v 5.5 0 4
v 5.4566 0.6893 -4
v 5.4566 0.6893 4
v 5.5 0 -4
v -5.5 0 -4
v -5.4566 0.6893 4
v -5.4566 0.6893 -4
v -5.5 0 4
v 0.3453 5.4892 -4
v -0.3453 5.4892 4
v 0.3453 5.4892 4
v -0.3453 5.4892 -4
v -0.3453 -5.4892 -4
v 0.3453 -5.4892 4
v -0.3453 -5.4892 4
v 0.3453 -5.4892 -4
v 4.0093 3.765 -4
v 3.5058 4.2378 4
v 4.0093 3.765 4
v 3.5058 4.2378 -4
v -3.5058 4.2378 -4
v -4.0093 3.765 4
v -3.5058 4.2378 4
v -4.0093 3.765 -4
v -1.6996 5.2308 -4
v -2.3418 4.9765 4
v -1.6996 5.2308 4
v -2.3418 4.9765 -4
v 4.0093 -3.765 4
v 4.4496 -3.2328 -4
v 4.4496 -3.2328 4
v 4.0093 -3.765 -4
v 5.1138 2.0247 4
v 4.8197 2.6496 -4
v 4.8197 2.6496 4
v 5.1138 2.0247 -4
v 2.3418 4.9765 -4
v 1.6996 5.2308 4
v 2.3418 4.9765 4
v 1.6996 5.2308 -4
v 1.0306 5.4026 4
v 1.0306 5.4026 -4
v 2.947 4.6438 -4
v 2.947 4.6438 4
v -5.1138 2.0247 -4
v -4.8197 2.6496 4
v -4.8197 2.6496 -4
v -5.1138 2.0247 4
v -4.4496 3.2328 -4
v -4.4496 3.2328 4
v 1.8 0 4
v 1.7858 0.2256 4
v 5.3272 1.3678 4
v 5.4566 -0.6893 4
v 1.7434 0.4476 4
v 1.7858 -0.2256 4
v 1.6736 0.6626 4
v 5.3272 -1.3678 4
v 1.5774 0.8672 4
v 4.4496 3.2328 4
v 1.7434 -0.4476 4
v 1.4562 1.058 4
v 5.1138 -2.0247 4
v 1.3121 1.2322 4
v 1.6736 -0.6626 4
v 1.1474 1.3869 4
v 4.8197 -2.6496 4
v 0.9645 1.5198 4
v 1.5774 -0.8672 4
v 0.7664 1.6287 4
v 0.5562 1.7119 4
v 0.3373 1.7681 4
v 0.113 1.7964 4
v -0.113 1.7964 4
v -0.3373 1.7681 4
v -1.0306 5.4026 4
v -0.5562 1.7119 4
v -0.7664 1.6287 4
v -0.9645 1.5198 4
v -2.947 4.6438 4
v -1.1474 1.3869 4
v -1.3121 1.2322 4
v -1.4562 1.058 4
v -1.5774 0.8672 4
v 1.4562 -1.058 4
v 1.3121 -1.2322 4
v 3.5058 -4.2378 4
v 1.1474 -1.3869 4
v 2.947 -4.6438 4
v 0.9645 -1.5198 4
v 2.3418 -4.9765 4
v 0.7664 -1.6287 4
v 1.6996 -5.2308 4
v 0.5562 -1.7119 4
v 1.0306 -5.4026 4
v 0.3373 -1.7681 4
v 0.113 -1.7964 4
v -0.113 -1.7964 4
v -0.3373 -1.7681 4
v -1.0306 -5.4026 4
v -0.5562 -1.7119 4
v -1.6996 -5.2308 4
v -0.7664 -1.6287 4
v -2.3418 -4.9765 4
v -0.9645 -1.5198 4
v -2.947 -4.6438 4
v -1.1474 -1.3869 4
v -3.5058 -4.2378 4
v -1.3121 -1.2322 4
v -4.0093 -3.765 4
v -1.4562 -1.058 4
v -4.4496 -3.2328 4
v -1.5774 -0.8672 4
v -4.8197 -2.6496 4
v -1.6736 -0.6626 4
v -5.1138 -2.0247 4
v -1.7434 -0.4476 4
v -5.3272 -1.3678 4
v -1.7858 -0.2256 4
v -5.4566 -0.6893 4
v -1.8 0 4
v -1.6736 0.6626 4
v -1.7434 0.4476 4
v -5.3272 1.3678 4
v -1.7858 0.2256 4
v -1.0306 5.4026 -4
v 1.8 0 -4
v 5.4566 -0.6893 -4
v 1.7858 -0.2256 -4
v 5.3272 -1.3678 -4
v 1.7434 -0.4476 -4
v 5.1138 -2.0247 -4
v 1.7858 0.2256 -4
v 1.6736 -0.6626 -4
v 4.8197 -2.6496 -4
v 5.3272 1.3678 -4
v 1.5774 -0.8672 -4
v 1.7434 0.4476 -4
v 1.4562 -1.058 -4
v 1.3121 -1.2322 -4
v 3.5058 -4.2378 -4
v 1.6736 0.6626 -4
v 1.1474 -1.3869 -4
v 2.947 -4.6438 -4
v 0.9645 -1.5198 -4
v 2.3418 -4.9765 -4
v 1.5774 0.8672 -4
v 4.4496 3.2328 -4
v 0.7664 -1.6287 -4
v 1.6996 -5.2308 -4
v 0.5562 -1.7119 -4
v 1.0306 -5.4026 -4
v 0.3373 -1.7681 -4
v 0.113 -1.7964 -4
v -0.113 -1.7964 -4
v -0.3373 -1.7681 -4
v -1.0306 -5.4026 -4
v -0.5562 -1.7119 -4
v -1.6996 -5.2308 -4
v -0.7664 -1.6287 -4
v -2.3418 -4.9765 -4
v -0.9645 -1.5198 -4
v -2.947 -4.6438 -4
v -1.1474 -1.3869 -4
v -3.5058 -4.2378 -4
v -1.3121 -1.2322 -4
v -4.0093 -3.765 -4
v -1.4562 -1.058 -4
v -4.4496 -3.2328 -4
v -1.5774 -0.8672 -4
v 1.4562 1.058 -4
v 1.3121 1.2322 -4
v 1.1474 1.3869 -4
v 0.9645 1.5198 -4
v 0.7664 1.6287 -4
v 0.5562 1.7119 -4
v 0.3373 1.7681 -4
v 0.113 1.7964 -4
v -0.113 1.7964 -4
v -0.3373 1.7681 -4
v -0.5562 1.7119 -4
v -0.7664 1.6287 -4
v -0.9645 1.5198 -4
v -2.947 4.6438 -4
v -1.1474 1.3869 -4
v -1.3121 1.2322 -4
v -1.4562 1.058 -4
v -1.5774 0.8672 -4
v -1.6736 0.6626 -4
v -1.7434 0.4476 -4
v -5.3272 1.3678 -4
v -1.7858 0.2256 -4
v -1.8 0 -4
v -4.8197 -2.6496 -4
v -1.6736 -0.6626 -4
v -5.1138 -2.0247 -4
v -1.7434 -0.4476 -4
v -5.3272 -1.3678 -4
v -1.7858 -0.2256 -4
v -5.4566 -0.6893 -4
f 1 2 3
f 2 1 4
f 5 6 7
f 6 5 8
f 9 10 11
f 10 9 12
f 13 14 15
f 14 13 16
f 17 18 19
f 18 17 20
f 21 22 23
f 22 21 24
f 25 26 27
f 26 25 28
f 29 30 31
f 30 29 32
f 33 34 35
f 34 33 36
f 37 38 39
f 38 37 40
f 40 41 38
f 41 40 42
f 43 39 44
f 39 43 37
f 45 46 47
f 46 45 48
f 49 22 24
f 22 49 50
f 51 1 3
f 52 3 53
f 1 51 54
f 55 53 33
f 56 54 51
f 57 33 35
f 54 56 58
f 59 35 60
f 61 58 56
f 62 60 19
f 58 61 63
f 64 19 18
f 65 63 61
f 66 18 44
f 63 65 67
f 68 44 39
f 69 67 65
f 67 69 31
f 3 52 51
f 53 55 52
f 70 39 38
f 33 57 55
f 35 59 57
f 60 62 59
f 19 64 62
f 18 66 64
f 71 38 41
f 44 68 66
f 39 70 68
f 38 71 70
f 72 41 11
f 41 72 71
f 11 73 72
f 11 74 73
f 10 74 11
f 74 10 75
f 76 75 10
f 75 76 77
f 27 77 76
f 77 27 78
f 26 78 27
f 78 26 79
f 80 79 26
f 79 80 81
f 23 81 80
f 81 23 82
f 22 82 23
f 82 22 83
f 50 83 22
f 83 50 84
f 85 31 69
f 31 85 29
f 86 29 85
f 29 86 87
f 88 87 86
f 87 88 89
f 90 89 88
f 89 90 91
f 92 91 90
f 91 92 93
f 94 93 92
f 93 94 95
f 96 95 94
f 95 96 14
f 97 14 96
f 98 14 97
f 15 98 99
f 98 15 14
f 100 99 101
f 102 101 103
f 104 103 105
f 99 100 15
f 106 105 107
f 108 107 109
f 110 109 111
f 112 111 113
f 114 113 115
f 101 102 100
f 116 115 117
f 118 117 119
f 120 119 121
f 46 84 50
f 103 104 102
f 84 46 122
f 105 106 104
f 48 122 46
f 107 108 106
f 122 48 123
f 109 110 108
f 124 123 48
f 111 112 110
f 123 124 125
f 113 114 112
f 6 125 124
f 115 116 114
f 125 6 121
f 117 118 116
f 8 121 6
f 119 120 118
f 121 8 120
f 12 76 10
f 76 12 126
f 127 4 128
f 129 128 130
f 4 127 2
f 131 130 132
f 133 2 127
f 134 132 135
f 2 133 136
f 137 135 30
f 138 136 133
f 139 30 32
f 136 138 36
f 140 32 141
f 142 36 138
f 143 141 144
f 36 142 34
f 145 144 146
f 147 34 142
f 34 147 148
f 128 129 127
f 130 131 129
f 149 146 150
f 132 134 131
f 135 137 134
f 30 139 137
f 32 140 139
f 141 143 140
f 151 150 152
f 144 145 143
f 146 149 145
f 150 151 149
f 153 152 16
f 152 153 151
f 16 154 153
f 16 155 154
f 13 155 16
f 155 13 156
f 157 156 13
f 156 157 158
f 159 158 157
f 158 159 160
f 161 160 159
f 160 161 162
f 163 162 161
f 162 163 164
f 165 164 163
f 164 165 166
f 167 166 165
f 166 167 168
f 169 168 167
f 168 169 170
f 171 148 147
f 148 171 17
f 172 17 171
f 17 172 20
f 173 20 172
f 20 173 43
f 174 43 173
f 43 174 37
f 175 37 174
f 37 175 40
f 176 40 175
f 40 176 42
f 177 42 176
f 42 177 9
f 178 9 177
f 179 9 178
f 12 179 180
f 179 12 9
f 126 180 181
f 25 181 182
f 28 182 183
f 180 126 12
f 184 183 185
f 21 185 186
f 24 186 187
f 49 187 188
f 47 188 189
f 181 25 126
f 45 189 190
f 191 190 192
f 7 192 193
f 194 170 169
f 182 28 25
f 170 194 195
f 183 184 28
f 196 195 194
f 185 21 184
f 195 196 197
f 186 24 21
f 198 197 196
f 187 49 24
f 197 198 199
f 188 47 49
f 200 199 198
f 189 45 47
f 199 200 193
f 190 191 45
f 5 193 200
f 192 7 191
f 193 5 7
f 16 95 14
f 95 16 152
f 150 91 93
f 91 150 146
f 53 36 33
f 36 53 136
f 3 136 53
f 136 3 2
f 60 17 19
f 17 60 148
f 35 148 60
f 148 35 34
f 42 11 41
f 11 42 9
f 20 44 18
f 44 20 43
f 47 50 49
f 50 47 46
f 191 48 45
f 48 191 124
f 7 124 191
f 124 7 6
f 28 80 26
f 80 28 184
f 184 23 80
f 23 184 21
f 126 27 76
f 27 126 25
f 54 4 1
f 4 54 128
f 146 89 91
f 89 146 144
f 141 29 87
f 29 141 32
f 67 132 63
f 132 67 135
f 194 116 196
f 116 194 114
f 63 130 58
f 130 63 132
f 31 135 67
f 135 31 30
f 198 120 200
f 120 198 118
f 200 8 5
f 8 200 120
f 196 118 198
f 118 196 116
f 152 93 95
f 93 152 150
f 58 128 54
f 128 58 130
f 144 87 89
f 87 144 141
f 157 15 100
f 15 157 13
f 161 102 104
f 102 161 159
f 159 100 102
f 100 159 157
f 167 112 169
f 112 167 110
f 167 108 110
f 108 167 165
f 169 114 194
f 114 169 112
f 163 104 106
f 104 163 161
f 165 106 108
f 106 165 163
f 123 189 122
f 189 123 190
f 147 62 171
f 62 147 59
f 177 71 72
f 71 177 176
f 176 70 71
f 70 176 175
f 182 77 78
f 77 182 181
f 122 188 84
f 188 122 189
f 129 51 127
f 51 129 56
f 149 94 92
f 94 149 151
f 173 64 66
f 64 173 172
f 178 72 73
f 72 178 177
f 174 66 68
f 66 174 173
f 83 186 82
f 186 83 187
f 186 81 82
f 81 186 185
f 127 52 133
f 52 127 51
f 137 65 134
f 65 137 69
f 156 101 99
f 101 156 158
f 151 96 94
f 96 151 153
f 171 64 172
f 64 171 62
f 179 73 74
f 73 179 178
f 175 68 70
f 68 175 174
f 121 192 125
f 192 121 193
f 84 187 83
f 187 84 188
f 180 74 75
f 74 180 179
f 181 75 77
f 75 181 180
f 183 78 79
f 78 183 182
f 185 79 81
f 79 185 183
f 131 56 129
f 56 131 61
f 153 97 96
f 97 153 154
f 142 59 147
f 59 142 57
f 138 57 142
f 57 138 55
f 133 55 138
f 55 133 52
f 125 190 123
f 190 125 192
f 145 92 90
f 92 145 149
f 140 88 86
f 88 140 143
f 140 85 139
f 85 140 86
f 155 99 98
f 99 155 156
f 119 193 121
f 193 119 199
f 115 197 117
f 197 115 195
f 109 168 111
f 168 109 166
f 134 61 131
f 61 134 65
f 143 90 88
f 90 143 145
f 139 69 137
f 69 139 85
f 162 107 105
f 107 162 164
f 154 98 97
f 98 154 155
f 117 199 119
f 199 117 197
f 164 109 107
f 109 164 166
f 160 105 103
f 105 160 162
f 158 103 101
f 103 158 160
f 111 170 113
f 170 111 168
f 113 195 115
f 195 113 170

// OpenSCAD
$fn = 50;


difference() {
	union() {
		translate(v = [0, 0, -4.0000000000]) {
			cylinder(h = 8, r = 5.5000000000);
		}
	}
	union() {
		translate(v = [0, 0, -100.0000000000]) {
			cylinder(h = 200, r = 1.8000000000);
		}
	}
}
